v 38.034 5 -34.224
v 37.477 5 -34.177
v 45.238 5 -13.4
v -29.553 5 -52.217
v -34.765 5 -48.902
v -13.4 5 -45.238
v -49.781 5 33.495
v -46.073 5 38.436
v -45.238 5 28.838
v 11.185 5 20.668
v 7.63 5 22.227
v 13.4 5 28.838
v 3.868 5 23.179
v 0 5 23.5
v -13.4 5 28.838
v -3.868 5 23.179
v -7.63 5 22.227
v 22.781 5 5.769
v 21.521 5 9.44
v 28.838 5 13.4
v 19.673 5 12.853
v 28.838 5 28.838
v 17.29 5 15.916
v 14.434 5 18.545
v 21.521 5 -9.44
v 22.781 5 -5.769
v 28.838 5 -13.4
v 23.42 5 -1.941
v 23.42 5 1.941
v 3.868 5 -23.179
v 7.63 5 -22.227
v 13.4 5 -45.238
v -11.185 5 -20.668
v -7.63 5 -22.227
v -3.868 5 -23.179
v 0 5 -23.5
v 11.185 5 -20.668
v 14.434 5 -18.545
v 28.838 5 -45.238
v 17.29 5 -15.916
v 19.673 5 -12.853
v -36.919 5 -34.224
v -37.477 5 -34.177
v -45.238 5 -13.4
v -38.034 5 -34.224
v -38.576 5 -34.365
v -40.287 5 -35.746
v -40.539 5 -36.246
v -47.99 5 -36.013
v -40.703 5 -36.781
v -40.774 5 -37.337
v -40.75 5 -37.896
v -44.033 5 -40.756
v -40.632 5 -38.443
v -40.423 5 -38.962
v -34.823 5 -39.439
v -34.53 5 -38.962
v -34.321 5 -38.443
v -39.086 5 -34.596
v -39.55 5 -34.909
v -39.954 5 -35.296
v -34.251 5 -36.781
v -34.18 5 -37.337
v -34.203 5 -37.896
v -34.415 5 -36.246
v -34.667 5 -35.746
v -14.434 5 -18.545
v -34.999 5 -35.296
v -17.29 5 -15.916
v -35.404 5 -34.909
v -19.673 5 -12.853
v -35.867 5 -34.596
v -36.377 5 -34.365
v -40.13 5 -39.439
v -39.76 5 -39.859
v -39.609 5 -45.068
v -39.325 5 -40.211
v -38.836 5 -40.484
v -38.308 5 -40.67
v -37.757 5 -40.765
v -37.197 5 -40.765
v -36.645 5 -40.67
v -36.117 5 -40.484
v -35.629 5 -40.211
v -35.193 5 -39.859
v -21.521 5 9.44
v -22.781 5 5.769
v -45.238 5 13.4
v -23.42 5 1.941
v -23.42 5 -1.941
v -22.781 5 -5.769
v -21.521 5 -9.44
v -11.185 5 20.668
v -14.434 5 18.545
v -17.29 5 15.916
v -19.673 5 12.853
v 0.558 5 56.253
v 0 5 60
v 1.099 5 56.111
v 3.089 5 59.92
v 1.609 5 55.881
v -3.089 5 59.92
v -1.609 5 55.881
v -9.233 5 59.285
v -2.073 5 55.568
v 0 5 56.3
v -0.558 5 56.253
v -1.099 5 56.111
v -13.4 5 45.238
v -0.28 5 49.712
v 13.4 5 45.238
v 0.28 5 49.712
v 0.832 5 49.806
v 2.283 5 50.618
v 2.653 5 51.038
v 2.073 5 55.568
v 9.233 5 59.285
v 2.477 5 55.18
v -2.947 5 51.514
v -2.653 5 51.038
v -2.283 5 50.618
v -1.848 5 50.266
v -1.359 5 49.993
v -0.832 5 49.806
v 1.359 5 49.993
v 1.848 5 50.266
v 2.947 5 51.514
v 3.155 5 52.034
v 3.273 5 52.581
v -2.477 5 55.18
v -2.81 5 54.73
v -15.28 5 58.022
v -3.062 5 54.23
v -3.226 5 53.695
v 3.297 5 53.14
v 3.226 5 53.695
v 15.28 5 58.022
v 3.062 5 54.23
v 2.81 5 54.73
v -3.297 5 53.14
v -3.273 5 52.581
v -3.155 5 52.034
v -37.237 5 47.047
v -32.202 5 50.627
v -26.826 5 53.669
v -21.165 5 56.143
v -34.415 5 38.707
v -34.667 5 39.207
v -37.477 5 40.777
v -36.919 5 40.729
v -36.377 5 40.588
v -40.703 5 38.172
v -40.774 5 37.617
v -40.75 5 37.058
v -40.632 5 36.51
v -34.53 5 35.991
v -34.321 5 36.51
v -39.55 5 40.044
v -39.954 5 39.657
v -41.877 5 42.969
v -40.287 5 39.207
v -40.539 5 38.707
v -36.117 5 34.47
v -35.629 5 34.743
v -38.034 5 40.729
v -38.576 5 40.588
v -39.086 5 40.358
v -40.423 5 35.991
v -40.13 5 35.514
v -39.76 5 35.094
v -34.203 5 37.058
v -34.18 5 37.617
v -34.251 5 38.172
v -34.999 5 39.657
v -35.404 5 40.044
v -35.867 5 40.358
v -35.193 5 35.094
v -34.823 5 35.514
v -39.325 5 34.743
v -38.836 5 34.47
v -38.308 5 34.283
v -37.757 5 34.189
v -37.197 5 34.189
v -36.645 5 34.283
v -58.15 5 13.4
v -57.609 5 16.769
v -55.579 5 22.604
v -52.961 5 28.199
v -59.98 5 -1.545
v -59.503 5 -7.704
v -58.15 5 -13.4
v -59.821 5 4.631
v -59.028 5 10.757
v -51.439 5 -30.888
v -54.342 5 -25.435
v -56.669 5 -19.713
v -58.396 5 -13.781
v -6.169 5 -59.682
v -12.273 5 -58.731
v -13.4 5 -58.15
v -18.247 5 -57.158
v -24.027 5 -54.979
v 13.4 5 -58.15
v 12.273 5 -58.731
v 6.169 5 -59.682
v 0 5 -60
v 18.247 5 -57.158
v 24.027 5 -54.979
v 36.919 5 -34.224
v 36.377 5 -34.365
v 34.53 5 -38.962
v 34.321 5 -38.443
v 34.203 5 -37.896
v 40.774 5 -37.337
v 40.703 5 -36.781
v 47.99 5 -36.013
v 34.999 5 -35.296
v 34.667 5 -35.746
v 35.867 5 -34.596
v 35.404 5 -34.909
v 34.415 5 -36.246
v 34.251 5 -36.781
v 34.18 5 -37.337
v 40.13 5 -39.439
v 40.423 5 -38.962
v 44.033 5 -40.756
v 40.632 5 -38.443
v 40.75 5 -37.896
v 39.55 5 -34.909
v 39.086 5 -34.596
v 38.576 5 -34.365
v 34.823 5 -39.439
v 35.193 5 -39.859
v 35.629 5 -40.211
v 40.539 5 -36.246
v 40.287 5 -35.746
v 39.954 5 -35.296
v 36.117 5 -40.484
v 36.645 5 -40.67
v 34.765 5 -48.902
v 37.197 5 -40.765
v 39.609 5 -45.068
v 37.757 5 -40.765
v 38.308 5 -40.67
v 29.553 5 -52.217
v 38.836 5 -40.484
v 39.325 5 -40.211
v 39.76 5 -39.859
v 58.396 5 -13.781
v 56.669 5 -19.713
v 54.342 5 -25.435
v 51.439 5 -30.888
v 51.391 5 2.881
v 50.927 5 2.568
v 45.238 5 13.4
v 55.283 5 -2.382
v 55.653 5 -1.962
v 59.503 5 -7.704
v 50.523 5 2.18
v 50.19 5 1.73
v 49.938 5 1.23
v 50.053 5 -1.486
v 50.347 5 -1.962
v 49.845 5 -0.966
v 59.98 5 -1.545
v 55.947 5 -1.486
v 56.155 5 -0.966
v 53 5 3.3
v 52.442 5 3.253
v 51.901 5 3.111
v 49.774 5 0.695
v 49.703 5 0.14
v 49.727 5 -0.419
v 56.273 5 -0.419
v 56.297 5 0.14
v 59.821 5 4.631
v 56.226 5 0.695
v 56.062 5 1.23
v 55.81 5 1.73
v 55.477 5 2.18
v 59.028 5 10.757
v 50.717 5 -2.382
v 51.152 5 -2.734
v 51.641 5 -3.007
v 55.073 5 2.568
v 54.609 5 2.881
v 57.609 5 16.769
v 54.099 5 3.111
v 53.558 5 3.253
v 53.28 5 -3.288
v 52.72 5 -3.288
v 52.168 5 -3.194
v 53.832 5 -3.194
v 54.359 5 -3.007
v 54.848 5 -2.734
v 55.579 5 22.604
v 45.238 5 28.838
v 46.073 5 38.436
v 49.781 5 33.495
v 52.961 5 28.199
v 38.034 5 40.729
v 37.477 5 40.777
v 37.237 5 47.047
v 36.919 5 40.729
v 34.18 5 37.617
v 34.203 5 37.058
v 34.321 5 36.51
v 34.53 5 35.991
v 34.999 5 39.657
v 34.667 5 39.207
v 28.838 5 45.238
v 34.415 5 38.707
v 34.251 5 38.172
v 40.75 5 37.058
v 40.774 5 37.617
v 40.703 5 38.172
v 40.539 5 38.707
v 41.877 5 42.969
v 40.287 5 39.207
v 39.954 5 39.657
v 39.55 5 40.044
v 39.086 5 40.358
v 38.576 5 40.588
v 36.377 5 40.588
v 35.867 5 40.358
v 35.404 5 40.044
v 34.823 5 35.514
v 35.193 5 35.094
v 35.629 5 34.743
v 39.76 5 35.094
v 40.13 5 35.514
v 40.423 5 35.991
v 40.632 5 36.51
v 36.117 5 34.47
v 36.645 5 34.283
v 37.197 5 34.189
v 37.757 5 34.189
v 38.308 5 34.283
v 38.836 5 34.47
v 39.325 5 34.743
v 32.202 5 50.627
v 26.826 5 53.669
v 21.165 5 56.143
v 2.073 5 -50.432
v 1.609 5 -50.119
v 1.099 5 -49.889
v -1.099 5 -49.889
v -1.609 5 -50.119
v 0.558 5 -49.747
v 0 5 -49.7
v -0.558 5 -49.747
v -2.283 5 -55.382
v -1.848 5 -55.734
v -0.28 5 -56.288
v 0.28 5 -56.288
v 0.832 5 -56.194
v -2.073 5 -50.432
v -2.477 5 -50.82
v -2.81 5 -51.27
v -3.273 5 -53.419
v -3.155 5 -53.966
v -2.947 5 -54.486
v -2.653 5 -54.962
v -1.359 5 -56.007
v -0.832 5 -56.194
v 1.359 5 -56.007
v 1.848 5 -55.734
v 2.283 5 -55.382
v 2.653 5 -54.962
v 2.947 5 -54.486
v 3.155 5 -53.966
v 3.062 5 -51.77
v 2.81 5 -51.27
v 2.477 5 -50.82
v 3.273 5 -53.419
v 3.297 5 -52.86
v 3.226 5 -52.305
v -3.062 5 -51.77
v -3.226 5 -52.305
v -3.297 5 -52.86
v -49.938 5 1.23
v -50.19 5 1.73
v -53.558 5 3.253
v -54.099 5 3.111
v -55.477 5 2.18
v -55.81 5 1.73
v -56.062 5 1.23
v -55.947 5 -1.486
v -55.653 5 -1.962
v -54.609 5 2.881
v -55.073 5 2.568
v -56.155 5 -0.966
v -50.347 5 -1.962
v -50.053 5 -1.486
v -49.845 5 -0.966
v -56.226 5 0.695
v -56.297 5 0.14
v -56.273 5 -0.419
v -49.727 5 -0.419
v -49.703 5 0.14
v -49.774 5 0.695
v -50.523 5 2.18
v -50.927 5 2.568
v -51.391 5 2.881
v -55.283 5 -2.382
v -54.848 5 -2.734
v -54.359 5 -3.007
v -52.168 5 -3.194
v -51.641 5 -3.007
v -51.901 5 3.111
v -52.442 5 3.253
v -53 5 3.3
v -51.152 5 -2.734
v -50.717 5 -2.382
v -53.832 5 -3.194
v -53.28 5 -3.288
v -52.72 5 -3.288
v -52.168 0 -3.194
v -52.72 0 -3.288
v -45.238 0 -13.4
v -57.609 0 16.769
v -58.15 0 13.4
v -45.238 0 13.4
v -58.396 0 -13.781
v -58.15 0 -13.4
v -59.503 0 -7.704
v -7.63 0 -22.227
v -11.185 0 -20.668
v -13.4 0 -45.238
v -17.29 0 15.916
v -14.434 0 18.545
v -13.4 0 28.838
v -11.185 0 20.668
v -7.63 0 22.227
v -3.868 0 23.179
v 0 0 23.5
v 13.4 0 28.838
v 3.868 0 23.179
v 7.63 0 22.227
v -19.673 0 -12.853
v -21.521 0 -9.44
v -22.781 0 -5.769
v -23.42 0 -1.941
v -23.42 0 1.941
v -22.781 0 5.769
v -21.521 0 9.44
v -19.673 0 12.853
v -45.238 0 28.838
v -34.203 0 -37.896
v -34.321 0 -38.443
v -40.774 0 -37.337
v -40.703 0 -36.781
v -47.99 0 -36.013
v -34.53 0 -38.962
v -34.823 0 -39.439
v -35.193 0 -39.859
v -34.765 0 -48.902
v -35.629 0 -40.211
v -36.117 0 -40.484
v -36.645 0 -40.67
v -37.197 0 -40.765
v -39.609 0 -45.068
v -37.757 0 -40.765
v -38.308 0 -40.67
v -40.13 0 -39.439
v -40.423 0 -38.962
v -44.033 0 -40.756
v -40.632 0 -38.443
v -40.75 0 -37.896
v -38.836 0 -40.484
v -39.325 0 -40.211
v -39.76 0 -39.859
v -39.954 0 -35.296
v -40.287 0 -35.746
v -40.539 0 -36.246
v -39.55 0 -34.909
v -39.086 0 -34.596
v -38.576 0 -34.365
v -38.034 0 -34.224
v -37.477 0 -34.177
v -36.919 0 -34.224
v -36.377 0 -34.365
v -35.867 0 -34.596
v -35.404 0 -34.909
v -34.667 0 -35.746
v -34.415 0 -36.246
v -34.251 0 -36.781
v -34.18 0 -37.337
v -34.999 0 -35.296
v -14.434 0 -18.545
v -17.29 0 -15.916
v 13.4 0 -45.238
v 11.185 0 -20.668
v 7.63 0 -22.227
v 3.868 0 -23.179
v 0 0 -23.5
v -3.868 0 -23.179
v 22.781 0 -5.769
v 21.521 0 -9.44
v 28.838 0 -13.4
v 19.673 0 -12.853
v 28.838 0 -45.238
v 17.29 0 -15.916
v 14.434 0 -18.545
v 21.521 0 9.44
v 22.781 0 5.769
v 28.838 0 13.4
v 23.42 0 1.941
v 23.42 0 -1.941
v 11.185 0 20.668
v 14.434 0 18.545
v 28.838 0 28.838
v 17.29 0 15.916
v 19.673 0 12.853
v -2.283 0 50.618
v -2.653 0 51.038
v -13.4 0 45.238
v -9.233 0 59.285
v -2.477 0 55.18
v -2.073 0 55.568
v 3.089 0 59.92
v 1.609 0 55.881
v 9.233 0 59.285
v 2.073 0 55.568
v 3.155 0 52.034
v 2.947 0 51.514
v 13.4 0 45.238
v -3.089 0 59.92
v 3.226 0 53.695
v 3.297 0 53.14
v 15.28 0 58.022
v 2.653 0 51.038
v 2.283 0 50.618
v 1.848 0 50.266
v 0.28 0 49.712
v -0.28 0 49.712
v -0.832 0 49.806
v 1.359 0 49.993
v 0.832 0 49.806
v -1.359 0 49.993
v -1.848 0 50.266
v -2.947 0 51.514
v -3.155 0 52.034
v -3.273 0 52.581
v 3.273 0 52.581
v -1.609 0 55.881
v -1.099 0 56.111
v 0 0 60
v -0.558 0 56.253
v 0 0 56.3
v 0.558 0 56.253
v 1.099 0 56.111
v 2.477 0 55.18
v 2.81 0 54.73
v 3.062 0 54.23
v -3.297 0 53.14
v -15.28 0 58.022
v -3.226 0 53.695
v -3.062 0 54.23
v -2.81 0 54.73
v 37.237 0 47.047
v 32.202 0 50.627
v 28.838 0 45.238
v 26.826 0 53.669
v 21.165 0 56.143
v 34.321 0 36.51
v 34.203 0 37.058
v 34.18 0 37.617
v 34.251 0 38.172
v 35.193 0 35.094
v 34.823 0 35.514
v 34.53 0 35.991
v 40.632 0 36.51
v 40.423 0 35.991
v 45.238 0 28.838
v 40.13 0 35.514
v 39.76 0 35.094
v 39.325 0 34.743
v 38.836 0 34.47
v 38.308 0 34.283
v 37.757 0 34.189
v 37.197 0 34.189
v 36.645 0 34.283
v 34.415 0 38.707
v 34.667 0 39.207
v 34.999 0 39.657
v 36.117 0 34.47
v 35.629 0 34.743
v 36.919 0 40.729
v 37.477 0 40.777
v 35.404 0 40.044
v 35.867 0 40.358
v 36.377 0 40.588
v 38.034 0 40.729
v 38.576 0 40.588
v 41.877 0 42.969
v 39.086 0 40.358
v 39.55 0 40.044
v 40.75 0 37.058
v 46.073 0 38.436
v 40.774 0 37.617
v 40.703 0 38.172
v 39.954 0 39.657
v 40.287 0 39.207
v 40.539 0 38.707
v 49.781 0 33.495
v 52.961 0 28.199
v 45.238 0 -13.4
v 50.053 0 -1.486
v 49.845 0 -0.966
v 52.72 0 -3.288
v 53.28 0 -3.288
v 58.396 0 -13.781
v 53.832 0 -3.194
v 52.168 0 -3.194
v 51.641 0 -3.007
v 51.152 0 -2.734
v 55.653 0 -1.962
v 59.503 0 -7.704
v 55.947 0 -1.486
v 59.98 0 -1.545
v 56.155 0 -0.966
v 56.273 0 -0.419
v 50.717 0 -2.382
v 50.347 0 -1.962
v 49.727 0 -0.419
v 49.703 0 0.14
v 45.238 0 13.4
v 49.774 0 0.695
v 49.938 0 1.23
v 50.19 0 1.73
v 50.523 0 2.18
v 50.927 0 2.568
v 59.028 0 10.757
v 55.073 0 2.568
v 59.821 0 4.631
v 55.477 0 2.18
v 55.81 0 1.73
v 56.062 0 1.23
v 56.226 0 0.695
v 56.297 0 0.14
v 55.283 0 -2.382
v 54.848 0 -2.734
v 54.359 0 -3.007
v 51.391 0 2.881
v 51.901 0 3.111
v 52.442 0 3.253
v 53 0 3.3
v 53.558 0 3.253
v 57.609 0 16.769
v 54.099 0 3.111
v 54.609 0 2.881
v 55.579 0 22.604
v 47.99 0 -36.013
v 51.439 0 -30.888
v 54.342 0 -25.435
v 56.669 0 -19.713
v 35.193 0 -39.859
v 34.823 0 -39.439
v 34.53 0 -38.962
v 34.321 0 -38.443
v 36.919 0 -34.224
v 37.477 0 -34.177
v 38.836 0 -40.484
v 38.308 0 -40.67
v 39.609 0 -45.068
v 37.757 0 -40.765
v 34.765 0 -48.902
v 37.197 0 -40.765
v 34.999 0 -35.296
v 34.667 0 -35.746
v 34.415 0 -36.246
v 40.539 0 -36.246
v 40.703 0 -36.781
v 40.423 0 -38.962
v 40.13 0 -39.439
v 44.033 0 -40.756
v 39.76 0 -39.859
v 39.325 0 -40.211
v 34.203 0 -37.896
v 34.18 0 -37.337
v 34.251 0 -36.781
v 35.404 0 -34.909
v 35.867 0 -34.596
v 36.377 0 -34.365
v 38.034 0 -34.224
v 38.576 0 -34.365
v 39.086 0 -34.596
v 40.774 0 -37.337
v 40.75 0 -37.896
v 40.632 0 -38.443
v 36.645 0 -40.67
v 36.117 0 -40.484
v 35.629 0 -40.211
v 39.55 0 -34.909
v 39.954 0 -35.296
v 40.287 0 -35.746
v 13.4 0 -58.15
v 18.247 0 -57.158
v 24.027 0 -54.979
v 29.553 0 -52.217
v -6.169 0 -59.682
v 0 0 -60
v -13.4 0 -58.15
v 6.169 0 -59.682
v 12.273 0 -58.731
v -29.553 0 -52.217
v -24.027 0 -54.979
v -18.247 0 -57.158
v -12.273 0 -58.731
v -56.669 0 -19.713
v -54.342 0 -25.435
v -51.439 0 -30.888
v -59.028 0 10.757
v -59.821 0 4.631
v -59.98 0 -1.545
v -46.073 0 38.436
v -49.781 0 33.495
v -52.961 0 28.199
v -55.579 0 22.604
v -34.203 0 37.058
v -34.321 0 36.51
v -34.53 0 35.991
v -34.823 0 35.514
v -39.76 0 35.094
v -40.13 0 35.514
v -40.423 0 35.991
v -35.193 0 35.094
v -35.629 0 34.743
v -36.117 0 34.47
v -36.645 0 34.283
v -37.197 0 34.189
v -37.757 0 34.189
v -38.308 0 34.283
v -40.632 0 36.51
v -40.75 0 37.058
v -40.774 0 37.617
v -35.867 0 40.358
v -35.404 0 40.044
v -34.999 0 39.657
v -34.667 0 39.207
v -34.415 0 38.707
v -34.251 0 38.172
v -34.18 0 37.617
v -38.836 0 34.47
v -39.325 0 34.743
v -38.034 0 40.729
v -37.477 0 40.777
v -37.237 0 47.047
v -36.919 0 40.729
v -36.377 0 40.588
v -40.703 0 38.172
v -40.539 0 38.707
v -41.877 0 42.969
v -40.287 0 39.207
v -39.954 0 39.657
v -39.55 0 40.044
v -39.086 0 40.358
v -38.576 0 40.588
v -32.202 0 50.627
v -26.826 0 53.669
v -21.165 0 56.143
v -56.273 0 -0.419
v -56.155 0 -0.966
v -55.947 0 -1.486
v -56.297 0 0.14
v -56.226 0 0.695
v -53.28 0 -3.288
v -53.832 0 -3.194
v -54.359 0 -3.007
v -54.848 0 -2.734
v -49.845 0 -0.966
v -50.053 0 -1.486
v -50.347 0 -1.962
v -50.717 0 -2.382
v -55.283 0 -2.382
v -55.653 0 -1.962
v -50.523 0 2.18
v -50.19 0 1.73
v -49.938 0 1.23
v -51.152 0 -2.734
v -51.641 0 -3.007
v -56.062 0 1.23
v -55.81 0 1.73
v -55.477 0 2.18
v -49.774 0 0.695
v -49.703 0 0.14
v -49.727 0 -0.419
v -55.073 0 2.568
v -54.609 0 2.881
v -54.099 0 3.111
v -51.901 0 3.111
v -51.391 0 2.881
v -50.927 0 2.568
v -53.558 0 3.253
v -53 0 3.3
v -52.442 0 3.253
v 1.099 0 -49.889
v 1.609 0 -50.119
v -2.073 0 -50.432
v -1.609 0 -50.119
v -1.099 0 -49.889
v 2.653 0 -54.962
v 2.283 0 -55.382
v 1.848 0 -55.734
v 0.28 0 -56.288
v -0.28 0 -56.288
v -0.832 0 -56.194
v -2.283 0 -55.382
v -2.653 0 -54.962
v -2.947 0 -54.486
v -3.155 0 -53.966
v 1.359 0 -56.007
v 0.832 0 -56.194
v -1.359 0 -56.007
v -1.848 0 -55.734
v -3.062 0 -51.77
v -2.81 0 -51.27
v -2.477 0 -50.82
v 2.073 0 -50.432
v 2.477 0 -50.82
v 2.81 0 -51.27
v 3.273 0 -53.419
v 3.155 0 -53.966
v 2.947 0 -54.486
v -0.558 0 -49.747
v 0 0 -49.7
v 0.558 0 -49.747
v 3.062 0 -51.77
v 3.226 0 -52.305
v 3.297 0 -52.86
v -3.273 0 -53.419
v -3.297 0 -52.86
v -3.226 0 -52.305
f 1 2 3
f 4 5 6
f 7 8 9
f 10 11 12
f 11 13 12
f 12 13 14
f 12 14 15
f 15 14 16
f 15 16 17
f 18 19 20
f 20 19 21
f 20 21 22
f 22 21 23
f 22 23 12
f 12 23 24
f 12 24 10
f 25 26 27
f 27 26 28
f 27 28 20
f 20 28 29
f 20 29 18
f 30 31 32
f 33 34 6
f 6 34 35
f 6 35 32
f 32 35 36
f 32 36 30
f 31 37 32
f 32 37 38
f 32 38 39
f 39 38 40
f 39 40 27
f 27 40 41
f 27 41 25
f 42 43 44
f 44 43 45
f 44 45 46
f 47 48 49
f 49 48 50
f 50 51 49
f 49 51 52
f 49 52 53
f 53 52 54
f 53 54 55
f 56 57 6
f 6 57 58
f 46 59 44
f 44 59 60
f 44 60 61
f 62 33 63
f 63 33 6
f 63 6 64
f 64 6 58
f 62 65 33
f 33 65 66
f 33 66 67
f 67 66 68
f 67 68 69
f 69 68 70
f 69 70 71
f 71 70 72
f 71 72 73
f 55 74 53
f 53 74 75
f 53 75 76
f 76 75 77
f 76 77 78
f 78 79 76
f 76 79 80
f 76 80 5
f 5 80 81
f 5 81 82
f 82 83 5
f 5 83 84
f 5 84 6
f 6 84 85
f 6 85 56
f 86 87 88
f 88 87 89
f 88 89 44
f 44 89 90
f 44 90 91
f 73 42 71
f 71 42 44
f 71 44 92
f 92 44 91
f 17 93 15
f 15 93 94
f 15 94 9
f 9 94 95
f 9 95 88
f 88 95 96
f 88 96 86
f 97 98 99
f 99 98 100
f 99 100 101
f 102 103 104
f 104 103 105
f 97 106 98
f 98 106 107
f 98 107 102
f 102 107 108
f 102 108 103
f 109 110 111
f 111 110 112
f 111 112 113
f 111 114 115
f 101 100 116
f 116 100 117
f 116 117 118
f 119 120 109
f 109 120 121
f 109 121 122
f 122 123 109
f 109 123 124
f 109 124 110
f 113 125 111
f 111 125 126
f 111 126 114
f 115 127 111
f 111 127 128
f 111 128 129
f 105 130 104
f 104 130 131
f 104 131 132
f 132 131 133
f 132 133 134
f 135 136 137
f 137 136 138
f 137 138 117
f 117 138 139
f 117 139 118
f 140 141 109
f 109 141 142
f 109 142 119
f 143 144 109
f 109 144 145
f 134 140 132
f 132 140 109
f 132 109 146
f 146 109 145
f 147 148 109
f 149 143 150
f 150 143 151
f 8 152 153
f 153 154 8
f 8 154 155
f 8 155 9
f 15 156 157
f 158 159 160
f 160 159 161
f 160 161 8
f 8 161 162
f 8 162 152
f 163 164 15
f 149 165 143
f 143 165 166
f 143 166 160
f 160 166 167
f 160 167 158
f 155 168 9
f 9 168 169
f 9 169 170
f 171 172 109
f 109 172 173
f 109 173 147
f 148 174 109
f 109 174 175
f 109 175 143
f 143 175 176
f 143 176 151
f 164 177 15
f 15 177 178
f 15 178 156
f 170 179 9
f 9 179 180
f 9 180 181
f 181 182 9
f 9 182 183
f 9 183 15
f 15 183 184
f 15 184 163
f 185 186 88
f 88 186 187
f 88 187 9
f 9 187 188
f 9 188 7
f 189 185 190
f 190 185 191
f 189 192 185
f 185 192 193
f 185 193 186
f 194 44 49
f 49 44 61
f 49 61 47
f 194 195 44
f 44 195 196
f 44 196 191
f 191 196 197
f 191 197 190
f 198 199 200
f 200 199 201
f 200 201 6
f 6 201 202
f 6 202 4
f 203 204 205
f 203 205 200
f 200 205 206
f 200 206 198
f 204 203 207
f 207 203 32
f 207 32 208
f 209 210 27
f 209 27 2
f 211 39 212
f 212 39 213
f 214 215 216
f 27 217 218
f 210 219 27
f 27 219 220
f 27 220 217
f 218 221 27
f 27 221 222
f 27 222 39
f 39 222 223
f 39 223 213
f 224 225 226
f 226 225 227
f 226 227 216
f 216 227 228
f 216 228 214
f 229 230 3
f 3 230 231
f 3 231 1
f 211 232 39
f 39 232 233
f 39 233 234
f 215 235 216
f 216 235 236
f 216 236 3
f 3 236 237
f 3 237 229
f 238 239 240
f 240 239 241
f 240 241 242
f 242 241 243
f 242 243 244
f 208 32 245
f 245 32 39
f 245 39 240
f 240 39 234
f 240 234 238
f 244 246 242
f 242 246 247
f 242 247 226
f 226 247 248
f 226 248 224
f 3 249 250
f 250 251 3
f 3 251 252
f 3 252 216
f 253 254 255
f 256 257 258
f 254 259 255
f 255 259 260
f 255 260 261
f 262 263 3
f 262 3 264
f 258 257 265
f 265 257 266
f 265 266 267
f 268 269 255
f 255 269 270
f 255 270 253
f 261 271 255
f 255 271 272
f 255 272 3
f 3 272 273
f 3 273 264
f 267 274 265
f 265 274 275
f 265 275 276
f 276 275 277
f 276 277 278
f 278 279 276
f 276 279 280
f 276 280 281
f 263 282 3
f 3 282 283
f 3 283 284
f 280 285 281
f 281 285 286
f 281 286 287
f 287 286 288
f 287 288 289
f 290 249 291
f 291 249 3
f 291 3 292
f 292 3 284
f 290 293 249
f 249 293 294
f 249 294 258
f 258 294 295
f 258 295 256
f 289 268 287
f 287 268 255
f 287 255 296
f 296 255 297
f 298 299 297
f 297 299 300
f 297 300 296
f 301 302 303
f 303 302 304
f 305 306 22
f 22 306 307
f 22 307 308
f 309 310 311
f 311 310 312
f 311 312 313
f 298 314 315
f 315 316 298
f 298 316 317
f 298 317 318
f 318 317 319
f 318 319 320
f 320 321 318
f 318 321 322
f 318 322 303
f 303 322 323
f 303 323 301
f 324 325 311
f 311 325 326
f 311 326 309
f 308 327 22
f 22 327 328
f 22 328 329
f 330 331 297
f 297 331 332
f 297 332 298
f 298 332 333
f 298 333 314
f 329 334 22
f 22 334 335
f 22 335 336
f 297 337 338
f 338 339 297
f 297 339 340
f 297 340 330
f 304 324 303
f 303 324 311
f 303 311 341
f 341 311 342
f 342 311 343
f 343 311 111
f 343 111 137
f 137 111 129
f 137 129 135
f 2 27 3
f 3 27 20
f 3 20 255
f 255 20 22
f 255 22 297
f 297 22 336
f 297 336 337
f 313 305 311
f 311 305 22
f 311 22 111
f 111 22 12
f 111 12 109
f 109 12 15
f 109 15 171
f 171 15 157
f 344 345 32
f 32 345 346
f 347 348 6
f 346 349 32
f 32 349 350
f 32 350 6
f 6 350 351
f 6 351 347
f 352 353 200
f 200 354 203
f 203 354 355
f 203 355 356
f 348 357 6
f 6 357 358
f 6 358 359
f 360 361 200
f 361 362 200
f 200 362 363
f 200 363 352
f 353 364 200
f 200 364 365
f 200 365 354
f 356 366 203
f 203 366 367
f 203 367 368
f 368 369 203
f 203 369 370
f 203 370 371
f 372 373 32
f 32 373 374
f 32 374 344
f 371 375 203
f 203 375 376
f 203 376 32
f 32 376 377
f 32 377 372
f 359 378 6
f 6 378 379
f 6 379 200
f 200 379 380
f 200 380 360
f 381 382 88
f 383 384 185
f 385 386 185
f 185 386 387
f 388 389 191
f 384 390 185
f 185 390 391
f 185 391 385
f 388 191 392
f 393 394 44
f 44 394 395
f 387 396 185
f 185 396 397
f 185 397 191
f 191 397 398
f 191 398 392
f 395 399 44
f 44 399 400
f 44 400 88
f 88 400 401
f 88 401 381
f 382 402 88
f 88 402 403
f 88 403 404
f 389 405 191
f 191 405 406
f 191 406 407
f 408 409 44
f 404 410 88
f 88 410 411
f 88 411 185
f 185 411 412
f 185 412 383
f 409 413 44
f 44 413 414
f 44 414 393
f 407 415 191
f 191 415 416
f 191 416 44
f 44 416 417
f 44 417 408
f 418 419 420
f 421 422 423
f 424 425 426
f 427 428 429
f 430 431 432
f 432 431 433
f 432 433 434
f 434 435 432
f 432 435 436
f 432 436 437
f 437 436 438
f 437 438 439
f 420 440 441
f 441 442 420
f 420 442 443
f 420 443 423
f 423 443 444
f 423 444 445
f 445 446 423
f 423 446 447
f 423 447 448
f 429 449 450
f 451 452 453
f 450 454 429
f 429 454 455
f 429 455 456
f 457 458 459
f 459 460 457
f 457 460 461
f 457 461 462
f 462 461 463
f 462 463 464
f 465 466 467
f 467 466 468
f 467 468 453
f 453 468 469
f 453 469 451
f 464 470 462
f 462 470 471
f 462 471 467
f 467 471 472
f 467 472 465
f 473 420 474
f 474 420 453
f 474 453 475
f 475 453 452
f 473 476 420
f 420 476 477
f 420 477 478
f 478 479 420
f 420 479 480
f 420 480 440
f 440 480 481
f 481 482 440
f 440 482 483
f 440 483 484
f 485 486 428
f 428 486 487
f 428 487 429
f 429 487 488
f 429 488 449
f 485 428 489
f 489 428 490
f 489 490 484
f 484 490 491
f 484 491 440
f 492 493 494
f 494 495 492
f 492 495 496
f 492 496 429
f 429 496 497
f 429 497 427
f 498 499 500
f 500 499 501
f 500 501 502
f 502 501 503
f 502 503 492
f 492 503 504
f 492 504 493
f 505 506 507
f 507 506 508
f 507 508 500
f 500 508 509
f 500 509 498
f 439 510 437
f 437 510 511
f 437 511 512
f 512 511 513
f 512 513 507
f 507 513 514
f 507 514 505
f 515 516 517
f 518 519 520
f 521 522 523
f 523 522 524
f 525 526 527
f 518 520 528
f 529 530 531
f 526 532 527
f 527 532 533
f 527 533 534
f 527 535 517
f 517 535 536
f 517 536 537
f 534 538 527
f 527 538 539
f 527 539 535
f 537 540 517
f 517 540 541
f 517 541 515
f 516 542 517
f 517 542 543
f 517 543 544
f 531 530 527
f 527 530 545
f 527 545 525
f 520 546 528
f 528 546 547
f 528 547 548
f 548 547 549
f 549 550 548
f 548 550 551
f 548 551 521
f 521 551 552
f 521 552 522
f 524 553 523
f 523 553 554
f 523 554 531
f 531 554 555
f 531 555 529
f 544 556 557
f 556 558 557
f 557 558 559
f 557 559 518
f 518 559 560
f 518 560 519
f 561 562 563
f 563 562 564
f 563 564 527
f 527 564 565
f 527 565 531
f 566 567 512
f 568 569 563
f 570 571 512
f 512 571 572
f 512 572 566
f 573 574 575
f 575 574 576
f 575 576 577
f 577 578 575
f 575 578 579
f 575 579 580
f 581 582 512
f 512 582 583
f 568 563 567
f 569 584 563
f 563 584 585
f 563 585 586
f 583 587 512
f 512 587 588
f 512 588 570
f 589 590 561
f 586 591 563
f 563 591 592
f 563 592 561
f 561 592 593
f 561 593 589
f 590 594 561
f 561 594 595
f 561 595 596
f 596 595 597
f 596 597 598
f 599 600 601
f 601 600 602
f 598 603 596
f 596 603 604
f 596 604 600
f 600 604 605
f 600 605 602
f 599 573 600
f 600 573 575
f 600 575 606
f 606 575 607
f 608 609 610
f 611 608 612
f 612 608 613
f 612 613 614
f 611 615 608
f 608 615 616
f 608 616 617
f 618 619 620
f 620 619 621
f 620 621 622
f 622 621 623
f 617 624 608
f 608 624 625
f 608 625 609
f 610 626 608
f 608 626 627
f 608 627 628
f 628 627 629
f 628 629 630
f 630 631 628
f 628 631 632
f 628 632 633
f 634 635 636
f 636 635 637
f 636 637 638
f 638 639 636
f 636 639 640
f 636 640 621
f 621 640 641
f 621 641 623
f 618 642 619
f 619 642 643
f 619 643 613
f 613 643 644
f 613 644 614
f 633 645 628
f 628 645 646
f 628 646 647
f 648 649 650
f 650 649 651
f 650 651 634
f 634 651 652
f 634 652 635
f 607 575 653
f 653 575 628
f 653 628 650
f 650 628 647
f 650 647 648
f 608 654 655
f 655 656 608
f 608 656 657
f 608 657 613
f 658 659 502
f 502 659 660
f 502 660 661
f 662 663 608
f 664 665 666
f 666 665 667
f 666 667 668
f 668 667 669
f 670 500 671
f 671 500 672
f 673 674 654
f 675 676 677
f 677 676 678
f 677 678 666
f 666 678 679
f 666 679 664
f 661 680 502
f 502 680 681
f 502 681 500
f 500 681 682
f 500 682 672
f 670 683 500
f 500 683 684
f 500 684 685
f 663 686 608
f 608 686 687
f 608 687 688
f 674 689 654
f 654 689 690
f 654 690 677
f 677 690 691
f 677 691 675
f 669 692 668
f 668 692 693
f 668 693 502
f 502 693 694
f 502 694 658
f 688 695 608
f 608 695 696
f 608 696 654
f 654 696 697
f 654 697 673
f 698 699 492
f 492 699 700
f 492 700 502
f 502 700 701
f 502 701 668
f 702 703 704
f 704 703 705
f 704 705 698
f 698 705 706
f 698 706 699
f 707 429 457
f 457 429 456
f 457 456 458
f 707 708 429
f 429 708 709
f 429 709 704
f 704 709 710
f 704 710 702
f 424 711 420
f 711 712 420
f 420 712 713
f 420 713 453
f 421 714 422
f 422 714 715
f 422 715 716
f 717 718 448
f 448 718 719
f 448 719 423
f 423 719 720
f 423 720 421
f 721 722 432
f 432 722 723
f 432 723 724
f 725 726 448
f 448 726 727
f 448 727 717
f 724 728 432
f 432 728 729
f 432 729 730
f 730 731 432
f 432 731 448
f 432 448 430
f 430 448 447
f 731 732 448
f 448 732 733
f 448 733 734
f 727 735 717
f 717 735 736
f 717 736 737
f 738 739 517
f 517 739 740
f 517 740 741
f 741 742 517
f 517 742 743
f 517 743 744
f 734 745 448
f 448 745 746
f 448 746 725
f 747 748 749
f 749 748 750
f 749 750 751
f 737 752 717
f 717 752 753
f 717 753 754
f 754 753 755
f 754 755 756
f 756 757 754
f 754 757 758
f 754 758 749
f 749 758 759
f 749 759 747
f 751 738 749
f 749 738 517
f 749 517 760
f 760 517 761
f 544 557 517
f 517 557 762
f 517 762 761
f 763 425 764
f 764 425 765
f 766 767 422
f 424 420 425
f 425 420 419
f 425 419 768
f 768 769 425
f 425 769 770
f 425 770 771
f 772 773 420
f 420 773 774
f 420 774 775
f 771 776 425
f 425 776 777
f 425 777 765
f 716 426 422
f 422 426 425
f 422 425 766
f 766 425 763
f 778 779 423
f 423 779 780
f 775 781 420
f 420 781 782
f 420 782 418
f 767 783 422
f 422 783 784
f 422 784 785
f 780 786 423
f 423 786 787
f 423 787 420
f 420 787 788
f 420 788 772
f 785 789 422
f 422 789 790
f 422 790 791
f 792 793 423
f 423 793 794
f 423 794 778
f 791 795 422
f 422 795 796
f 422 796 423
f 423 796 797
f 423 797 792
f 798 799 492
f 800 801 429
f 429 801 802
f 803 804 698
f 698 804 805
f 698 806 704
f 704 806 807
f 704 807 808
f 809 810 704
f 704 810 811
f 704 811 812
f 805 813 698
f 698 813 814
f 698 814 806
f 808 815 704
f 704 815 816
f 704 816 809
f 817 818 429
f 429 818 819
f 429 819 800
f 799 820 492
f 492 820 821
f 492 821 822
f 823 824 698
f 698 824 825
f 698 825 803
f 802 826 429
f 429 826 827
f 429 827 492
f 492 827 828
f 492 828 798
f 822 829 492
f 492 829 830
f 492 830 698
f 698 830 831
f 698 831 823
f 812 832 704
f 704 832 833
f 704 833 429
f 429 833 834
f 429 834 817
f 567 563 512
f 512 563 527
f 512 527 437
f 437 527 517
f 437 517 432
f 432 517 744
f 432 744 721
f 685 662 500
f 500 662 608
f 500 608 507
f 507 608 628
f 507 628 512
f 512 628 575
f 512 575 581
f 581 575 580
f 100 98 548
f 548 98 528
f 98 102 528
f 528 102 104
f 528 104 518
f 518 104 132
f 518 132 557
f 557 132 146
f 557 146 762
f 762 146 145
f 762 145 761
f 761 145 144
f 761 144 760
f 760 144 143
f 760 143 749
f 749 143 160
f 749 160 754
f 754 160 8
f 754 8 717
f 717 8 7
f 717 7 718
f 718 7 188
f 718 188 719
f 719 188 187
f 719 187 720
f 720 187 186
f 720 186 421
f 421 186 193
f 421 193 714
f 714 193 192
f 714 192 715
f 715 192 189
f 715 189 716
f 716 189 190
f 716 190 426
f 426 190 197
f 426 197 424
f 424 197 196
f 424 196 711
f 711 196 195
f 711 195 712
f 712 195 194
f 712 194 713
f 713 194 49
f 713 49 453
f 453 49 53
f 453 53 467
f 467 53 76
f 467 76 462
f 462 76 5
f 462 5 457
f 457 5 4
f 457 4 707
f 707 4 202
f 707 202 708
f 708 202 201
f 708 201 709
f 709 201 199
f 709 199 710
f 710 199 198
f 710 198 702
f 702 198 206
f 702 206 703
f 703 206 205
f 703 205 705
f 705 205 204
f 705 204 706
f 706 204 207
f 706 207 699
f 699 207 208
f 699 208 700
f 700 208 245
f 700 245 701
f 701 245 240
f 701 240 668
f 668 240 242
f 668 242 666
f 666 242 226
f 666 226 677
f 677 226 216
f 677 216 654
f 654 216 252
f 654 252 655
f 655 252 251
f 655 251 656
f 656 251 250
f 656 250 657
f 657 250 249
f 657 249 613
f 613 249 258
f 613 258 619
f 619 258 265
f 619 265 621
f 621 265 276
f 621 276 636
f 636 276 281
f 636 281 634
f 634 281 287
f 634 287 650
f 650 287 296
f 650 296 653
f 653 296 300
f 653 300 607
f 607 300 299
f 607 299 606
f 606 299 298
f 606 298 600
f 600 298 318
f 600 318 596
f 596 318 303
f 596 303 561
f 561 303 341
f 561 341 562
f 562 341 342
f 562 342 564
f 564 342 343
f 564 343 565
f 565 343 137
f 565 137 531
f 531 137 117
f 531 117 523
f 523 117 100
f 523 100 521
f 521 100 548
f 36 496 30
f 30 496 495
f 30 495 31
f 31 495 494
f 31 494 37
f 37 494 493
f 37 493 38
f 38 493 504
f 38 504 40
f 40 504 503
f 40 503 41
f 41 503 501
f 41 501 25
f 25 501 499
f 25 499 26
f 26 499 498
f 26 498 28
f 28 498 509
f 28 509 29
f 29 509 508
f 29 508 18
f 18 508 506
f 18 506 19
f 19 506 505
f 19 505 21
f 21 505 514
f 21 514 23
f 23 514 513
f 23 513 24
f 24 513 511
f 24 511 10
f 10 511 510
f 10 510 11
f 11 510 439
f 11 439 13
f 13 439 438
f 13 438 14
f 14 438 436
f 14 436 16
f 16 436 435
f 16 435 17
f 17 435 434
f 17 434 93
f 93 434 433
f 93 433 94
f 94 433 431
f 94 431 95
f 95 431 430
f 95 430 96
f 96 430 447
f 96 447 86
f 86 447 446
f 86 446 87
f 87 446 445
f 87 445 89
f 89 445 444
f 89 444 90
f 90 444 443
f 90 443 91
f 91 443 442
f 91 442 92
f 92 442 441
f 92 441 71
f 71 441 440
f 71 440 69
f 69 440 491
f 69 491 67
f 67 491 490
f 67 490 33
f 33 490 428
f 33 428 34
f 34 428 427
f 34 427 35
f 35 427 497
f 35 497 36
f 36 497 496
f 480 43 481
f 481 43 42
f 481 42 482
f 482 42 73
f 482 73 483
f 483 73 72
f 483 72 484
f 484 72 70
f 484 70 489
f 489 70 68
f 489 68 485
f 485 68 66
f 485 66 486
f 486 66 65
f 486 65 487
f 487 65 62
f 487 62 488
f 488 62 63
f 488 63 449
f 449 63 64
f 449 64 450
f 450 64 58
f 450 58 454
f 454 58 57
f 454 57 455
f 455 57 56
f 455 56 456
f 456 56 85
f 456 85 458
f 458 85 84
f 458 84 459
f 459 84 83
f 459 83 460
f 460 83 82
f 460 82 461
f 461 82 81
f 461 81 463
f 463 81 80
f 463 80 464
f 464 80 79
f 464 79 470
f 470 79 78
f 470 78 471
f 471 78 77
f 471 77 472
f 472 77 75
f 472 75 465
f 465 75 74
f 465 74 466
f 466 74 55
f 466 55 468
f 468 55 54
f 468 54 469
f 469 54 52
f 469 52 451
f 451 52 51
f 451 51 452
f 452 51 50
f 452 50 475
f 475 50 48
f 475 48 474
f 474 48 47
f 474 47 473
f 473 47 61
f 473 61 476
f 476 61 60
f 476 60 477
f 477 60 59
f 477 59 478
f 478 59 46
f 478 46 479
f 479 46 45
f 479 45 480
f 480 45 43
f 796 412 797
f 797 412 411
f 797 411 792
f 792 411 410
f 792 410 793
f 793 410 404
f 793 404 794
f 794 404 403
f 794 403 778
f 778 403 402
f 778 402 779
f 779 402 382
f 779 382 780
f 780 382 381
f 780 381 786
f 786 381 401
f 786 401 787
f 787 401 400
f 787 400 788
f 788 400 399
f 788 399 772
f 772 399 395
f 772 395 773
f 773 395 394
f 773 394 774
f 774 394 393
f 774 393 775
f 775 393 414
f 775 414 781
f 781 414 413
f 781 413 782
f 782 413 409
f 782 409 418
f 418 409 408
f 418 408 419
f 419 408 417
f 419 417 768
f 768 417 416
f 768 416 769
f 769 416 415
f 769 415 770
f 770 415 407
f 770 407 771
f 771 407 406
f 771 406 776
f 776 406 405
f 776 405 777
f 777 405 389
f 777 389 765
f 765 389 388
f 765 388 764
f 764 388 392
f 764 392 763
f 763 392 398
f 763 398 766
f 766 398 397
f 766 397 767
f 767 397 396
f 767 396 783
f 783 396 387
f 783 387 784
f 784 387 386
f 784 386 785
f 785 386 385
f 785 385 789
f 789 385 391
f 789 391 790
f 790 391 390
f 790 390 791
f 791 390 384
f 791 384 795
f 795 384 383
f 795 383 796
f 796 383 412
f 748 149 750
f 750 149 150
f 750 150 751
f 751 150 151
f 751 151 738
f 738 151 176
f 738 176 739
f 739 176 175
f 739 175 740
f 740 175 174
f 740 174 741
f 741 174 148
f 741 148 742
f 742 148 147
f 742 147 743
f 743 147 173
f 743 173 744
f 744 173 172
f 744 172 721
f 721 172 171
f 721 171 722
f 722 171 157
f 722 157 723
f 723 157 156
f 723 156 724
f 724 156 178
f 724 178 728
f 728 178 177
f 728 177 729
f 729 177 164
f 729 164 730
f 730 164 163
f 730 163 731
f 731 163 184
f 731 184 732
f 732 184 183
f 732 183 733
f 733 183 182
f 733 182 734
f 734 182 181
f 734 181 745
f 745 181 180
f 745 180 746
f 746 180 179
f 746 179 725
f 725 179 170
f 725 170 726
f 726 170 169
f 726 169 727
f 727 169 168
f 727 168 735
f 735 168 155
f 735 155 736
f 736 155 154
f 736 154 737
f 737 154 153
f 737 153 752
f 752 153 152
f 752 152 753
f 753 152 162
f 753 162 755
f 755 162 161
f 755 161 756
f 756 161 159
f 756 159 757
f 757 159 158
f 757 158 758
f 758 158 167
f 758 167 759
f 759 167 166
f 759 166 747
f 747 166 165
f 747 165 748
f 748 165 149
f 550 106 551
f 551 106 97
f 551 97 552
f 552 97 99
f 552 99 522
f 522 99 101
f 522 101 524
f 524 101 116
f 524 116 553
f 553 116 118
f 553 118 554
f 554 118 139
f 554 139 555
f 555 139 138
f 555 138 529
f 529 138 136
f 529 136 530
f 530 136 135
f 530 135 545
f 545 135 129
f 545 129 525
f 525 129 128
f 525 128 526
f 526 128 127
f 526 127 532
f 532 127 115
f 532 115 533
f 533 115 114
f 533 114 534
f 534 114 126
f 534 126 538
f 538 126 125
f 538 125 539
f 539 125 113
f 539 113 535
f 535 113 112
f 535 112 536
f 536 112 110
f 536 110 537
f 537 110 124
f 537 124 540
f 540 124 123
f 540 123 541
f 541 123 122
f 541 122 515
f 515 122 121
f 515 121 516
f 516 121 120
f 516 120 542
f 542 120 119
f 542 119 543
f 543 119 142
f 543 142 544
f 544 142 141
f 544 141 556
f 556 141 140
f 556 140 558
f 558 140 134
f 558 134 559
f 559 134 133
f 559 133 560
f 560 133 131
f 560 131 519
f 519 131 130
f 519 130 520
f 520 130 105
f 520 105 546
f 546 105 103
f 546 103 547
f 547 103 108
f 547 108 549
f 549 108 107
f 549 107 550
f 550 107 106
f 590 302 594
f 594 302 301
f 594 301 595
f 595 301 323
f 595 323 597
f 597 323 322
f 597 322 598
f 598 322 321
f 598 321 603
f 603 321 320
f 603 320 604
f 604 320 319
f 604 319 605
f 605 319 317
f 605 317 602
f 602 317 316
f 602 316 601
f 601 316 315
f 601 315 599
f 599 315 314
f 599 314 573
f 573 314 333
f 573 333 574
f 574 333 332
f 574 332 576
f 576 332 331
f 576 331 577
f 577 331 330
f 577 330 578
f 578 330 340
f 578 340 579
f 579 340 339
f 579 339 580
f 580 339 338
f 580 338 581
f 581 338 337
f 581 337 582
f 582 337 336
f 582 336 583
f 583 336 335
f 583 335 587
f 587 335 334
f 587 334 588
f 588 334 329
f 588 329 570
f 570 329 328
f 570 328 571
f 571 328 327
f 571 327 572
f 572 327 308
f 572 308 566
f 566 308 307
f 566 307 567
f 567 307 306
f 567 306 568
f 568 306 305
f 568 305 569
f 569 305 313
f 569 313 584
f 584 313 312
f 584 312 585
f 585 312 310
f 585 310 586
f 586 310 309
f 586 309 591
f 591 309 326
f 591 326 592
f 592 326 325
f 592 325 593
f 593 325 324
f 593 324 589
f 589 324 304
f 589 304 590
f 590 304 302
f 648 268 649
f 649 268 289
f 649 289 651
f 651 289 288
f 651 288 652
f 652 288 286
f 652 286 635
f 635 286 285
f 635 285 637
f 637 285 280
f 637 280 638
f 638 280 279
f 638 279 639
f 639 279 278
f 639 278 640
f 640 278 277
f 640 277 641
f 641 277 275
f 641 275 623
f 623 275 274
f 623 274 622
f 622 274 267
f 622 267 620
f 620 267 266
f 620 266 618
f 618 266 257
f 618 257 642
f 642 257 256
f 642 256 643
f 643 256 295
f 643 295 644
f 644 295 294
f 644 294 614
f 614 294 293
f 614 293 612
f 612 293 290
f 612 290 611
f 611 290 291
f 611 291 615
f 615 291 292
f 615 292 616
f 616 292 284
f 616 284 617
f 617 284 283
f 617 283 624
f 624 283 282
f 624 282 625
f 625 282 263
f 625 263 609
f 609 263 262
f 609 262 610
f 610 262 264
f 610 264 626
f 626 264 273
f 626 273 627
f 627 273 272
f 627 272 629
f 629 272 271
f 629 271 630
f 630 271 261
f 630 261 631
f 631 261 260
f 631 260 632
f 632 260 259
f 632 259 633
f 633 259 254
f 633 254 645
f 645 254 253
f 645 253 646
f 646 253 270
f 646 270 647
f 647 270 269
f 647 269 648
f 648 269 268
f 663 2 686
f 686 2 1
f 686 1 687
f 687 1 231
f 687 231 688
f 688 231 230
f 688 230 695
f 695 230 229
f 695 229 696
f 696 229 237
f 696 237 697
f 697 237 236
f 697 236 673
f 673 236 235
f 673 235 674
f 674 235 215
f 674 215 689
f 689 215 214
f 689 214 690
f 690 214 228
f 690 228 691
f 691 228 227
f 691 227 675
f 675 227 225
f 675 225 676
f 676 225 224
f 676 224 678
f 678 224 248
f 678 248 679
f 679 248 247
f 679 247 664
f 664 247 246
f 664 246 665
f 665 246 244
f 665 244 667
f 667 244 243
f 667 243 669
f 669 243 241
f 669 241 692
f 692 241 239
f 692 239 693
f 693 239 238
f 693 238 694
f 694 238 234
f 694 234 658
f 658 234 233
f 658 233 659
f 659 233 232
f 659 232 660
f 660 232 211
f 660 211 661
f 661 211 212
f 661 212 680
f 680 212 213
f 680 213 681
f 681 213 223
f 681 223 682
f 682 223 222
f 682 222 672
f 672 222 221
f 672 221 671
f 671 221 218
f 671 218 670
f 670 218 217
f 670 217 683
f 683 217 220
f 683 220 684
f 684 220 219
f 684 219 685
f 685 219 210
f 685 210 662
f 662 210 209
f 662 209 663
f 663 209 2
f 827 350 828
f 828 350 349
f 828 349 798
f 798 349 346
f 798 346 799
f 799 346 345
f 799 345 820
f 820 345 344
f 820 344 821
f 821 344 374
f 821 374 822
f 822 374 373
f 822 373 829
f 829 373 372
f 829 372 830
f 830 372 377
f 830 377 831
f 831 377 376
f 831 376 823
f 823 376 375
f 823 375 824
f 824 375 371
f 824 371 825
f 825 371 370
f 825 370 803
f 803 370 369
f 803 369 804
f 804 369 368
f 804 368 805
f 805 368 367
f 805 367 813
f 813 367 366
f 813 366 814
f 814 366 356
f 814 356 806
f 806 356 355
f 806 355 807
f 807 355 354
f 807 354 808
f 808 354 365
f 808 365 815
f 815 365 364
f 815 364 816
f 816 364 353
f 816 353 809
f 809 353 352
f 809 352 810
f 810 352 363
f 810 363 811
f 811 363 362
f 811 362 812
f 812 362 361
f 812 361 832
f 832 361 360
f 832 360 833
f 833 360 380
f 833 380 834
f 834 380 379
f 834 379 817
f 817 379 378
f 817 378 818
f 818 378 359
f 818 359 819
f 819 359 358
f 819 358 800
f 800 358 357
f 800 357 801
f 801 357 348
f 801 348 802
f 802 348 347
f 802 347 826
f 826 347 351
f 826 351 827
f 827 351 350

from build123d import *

# Parameters (mm, degrees)
SKETCH1_R            = 60
SKETCH1_R_2          = 23.5
BOSS_EXTRUDE1_DEPTH  = 5
M6_CLEARANCE_HOLE1_D = 6.6


with BuildPart() as part:
    # Sketch1 → Boss-Extrude1 (new body)
    with BuildSketch(Plane(origin=(0, 0, 0), x_dir=(1, 0, 0), z_dir=(0, 1, 0))):
        Circle(SKETCH1_R)
        Circle(SKETCH1_R_2, mode=Mode.SUBTRACT)
    extrude(amount=BOSS_EXTRUDE1_DEPTH)

    # M6 Clearance Hole1 (through all)
    with Locations(Plane(origin=(0, 5, 0), x_dir=(1, 0, 0), z_dir=(0, 1, 0))):
        with Locations((-37.476659403, 37.476659403), (0, 53), (37.476659403, 37.476659403), (53, 0), (37.476659403, -37.476659403), (0, -53), (-37.476659403, -37.476659403), (-53, 0)):
            Hole(M6_CLEARANCE_HOLE1_D / 2)


solid = part.part
